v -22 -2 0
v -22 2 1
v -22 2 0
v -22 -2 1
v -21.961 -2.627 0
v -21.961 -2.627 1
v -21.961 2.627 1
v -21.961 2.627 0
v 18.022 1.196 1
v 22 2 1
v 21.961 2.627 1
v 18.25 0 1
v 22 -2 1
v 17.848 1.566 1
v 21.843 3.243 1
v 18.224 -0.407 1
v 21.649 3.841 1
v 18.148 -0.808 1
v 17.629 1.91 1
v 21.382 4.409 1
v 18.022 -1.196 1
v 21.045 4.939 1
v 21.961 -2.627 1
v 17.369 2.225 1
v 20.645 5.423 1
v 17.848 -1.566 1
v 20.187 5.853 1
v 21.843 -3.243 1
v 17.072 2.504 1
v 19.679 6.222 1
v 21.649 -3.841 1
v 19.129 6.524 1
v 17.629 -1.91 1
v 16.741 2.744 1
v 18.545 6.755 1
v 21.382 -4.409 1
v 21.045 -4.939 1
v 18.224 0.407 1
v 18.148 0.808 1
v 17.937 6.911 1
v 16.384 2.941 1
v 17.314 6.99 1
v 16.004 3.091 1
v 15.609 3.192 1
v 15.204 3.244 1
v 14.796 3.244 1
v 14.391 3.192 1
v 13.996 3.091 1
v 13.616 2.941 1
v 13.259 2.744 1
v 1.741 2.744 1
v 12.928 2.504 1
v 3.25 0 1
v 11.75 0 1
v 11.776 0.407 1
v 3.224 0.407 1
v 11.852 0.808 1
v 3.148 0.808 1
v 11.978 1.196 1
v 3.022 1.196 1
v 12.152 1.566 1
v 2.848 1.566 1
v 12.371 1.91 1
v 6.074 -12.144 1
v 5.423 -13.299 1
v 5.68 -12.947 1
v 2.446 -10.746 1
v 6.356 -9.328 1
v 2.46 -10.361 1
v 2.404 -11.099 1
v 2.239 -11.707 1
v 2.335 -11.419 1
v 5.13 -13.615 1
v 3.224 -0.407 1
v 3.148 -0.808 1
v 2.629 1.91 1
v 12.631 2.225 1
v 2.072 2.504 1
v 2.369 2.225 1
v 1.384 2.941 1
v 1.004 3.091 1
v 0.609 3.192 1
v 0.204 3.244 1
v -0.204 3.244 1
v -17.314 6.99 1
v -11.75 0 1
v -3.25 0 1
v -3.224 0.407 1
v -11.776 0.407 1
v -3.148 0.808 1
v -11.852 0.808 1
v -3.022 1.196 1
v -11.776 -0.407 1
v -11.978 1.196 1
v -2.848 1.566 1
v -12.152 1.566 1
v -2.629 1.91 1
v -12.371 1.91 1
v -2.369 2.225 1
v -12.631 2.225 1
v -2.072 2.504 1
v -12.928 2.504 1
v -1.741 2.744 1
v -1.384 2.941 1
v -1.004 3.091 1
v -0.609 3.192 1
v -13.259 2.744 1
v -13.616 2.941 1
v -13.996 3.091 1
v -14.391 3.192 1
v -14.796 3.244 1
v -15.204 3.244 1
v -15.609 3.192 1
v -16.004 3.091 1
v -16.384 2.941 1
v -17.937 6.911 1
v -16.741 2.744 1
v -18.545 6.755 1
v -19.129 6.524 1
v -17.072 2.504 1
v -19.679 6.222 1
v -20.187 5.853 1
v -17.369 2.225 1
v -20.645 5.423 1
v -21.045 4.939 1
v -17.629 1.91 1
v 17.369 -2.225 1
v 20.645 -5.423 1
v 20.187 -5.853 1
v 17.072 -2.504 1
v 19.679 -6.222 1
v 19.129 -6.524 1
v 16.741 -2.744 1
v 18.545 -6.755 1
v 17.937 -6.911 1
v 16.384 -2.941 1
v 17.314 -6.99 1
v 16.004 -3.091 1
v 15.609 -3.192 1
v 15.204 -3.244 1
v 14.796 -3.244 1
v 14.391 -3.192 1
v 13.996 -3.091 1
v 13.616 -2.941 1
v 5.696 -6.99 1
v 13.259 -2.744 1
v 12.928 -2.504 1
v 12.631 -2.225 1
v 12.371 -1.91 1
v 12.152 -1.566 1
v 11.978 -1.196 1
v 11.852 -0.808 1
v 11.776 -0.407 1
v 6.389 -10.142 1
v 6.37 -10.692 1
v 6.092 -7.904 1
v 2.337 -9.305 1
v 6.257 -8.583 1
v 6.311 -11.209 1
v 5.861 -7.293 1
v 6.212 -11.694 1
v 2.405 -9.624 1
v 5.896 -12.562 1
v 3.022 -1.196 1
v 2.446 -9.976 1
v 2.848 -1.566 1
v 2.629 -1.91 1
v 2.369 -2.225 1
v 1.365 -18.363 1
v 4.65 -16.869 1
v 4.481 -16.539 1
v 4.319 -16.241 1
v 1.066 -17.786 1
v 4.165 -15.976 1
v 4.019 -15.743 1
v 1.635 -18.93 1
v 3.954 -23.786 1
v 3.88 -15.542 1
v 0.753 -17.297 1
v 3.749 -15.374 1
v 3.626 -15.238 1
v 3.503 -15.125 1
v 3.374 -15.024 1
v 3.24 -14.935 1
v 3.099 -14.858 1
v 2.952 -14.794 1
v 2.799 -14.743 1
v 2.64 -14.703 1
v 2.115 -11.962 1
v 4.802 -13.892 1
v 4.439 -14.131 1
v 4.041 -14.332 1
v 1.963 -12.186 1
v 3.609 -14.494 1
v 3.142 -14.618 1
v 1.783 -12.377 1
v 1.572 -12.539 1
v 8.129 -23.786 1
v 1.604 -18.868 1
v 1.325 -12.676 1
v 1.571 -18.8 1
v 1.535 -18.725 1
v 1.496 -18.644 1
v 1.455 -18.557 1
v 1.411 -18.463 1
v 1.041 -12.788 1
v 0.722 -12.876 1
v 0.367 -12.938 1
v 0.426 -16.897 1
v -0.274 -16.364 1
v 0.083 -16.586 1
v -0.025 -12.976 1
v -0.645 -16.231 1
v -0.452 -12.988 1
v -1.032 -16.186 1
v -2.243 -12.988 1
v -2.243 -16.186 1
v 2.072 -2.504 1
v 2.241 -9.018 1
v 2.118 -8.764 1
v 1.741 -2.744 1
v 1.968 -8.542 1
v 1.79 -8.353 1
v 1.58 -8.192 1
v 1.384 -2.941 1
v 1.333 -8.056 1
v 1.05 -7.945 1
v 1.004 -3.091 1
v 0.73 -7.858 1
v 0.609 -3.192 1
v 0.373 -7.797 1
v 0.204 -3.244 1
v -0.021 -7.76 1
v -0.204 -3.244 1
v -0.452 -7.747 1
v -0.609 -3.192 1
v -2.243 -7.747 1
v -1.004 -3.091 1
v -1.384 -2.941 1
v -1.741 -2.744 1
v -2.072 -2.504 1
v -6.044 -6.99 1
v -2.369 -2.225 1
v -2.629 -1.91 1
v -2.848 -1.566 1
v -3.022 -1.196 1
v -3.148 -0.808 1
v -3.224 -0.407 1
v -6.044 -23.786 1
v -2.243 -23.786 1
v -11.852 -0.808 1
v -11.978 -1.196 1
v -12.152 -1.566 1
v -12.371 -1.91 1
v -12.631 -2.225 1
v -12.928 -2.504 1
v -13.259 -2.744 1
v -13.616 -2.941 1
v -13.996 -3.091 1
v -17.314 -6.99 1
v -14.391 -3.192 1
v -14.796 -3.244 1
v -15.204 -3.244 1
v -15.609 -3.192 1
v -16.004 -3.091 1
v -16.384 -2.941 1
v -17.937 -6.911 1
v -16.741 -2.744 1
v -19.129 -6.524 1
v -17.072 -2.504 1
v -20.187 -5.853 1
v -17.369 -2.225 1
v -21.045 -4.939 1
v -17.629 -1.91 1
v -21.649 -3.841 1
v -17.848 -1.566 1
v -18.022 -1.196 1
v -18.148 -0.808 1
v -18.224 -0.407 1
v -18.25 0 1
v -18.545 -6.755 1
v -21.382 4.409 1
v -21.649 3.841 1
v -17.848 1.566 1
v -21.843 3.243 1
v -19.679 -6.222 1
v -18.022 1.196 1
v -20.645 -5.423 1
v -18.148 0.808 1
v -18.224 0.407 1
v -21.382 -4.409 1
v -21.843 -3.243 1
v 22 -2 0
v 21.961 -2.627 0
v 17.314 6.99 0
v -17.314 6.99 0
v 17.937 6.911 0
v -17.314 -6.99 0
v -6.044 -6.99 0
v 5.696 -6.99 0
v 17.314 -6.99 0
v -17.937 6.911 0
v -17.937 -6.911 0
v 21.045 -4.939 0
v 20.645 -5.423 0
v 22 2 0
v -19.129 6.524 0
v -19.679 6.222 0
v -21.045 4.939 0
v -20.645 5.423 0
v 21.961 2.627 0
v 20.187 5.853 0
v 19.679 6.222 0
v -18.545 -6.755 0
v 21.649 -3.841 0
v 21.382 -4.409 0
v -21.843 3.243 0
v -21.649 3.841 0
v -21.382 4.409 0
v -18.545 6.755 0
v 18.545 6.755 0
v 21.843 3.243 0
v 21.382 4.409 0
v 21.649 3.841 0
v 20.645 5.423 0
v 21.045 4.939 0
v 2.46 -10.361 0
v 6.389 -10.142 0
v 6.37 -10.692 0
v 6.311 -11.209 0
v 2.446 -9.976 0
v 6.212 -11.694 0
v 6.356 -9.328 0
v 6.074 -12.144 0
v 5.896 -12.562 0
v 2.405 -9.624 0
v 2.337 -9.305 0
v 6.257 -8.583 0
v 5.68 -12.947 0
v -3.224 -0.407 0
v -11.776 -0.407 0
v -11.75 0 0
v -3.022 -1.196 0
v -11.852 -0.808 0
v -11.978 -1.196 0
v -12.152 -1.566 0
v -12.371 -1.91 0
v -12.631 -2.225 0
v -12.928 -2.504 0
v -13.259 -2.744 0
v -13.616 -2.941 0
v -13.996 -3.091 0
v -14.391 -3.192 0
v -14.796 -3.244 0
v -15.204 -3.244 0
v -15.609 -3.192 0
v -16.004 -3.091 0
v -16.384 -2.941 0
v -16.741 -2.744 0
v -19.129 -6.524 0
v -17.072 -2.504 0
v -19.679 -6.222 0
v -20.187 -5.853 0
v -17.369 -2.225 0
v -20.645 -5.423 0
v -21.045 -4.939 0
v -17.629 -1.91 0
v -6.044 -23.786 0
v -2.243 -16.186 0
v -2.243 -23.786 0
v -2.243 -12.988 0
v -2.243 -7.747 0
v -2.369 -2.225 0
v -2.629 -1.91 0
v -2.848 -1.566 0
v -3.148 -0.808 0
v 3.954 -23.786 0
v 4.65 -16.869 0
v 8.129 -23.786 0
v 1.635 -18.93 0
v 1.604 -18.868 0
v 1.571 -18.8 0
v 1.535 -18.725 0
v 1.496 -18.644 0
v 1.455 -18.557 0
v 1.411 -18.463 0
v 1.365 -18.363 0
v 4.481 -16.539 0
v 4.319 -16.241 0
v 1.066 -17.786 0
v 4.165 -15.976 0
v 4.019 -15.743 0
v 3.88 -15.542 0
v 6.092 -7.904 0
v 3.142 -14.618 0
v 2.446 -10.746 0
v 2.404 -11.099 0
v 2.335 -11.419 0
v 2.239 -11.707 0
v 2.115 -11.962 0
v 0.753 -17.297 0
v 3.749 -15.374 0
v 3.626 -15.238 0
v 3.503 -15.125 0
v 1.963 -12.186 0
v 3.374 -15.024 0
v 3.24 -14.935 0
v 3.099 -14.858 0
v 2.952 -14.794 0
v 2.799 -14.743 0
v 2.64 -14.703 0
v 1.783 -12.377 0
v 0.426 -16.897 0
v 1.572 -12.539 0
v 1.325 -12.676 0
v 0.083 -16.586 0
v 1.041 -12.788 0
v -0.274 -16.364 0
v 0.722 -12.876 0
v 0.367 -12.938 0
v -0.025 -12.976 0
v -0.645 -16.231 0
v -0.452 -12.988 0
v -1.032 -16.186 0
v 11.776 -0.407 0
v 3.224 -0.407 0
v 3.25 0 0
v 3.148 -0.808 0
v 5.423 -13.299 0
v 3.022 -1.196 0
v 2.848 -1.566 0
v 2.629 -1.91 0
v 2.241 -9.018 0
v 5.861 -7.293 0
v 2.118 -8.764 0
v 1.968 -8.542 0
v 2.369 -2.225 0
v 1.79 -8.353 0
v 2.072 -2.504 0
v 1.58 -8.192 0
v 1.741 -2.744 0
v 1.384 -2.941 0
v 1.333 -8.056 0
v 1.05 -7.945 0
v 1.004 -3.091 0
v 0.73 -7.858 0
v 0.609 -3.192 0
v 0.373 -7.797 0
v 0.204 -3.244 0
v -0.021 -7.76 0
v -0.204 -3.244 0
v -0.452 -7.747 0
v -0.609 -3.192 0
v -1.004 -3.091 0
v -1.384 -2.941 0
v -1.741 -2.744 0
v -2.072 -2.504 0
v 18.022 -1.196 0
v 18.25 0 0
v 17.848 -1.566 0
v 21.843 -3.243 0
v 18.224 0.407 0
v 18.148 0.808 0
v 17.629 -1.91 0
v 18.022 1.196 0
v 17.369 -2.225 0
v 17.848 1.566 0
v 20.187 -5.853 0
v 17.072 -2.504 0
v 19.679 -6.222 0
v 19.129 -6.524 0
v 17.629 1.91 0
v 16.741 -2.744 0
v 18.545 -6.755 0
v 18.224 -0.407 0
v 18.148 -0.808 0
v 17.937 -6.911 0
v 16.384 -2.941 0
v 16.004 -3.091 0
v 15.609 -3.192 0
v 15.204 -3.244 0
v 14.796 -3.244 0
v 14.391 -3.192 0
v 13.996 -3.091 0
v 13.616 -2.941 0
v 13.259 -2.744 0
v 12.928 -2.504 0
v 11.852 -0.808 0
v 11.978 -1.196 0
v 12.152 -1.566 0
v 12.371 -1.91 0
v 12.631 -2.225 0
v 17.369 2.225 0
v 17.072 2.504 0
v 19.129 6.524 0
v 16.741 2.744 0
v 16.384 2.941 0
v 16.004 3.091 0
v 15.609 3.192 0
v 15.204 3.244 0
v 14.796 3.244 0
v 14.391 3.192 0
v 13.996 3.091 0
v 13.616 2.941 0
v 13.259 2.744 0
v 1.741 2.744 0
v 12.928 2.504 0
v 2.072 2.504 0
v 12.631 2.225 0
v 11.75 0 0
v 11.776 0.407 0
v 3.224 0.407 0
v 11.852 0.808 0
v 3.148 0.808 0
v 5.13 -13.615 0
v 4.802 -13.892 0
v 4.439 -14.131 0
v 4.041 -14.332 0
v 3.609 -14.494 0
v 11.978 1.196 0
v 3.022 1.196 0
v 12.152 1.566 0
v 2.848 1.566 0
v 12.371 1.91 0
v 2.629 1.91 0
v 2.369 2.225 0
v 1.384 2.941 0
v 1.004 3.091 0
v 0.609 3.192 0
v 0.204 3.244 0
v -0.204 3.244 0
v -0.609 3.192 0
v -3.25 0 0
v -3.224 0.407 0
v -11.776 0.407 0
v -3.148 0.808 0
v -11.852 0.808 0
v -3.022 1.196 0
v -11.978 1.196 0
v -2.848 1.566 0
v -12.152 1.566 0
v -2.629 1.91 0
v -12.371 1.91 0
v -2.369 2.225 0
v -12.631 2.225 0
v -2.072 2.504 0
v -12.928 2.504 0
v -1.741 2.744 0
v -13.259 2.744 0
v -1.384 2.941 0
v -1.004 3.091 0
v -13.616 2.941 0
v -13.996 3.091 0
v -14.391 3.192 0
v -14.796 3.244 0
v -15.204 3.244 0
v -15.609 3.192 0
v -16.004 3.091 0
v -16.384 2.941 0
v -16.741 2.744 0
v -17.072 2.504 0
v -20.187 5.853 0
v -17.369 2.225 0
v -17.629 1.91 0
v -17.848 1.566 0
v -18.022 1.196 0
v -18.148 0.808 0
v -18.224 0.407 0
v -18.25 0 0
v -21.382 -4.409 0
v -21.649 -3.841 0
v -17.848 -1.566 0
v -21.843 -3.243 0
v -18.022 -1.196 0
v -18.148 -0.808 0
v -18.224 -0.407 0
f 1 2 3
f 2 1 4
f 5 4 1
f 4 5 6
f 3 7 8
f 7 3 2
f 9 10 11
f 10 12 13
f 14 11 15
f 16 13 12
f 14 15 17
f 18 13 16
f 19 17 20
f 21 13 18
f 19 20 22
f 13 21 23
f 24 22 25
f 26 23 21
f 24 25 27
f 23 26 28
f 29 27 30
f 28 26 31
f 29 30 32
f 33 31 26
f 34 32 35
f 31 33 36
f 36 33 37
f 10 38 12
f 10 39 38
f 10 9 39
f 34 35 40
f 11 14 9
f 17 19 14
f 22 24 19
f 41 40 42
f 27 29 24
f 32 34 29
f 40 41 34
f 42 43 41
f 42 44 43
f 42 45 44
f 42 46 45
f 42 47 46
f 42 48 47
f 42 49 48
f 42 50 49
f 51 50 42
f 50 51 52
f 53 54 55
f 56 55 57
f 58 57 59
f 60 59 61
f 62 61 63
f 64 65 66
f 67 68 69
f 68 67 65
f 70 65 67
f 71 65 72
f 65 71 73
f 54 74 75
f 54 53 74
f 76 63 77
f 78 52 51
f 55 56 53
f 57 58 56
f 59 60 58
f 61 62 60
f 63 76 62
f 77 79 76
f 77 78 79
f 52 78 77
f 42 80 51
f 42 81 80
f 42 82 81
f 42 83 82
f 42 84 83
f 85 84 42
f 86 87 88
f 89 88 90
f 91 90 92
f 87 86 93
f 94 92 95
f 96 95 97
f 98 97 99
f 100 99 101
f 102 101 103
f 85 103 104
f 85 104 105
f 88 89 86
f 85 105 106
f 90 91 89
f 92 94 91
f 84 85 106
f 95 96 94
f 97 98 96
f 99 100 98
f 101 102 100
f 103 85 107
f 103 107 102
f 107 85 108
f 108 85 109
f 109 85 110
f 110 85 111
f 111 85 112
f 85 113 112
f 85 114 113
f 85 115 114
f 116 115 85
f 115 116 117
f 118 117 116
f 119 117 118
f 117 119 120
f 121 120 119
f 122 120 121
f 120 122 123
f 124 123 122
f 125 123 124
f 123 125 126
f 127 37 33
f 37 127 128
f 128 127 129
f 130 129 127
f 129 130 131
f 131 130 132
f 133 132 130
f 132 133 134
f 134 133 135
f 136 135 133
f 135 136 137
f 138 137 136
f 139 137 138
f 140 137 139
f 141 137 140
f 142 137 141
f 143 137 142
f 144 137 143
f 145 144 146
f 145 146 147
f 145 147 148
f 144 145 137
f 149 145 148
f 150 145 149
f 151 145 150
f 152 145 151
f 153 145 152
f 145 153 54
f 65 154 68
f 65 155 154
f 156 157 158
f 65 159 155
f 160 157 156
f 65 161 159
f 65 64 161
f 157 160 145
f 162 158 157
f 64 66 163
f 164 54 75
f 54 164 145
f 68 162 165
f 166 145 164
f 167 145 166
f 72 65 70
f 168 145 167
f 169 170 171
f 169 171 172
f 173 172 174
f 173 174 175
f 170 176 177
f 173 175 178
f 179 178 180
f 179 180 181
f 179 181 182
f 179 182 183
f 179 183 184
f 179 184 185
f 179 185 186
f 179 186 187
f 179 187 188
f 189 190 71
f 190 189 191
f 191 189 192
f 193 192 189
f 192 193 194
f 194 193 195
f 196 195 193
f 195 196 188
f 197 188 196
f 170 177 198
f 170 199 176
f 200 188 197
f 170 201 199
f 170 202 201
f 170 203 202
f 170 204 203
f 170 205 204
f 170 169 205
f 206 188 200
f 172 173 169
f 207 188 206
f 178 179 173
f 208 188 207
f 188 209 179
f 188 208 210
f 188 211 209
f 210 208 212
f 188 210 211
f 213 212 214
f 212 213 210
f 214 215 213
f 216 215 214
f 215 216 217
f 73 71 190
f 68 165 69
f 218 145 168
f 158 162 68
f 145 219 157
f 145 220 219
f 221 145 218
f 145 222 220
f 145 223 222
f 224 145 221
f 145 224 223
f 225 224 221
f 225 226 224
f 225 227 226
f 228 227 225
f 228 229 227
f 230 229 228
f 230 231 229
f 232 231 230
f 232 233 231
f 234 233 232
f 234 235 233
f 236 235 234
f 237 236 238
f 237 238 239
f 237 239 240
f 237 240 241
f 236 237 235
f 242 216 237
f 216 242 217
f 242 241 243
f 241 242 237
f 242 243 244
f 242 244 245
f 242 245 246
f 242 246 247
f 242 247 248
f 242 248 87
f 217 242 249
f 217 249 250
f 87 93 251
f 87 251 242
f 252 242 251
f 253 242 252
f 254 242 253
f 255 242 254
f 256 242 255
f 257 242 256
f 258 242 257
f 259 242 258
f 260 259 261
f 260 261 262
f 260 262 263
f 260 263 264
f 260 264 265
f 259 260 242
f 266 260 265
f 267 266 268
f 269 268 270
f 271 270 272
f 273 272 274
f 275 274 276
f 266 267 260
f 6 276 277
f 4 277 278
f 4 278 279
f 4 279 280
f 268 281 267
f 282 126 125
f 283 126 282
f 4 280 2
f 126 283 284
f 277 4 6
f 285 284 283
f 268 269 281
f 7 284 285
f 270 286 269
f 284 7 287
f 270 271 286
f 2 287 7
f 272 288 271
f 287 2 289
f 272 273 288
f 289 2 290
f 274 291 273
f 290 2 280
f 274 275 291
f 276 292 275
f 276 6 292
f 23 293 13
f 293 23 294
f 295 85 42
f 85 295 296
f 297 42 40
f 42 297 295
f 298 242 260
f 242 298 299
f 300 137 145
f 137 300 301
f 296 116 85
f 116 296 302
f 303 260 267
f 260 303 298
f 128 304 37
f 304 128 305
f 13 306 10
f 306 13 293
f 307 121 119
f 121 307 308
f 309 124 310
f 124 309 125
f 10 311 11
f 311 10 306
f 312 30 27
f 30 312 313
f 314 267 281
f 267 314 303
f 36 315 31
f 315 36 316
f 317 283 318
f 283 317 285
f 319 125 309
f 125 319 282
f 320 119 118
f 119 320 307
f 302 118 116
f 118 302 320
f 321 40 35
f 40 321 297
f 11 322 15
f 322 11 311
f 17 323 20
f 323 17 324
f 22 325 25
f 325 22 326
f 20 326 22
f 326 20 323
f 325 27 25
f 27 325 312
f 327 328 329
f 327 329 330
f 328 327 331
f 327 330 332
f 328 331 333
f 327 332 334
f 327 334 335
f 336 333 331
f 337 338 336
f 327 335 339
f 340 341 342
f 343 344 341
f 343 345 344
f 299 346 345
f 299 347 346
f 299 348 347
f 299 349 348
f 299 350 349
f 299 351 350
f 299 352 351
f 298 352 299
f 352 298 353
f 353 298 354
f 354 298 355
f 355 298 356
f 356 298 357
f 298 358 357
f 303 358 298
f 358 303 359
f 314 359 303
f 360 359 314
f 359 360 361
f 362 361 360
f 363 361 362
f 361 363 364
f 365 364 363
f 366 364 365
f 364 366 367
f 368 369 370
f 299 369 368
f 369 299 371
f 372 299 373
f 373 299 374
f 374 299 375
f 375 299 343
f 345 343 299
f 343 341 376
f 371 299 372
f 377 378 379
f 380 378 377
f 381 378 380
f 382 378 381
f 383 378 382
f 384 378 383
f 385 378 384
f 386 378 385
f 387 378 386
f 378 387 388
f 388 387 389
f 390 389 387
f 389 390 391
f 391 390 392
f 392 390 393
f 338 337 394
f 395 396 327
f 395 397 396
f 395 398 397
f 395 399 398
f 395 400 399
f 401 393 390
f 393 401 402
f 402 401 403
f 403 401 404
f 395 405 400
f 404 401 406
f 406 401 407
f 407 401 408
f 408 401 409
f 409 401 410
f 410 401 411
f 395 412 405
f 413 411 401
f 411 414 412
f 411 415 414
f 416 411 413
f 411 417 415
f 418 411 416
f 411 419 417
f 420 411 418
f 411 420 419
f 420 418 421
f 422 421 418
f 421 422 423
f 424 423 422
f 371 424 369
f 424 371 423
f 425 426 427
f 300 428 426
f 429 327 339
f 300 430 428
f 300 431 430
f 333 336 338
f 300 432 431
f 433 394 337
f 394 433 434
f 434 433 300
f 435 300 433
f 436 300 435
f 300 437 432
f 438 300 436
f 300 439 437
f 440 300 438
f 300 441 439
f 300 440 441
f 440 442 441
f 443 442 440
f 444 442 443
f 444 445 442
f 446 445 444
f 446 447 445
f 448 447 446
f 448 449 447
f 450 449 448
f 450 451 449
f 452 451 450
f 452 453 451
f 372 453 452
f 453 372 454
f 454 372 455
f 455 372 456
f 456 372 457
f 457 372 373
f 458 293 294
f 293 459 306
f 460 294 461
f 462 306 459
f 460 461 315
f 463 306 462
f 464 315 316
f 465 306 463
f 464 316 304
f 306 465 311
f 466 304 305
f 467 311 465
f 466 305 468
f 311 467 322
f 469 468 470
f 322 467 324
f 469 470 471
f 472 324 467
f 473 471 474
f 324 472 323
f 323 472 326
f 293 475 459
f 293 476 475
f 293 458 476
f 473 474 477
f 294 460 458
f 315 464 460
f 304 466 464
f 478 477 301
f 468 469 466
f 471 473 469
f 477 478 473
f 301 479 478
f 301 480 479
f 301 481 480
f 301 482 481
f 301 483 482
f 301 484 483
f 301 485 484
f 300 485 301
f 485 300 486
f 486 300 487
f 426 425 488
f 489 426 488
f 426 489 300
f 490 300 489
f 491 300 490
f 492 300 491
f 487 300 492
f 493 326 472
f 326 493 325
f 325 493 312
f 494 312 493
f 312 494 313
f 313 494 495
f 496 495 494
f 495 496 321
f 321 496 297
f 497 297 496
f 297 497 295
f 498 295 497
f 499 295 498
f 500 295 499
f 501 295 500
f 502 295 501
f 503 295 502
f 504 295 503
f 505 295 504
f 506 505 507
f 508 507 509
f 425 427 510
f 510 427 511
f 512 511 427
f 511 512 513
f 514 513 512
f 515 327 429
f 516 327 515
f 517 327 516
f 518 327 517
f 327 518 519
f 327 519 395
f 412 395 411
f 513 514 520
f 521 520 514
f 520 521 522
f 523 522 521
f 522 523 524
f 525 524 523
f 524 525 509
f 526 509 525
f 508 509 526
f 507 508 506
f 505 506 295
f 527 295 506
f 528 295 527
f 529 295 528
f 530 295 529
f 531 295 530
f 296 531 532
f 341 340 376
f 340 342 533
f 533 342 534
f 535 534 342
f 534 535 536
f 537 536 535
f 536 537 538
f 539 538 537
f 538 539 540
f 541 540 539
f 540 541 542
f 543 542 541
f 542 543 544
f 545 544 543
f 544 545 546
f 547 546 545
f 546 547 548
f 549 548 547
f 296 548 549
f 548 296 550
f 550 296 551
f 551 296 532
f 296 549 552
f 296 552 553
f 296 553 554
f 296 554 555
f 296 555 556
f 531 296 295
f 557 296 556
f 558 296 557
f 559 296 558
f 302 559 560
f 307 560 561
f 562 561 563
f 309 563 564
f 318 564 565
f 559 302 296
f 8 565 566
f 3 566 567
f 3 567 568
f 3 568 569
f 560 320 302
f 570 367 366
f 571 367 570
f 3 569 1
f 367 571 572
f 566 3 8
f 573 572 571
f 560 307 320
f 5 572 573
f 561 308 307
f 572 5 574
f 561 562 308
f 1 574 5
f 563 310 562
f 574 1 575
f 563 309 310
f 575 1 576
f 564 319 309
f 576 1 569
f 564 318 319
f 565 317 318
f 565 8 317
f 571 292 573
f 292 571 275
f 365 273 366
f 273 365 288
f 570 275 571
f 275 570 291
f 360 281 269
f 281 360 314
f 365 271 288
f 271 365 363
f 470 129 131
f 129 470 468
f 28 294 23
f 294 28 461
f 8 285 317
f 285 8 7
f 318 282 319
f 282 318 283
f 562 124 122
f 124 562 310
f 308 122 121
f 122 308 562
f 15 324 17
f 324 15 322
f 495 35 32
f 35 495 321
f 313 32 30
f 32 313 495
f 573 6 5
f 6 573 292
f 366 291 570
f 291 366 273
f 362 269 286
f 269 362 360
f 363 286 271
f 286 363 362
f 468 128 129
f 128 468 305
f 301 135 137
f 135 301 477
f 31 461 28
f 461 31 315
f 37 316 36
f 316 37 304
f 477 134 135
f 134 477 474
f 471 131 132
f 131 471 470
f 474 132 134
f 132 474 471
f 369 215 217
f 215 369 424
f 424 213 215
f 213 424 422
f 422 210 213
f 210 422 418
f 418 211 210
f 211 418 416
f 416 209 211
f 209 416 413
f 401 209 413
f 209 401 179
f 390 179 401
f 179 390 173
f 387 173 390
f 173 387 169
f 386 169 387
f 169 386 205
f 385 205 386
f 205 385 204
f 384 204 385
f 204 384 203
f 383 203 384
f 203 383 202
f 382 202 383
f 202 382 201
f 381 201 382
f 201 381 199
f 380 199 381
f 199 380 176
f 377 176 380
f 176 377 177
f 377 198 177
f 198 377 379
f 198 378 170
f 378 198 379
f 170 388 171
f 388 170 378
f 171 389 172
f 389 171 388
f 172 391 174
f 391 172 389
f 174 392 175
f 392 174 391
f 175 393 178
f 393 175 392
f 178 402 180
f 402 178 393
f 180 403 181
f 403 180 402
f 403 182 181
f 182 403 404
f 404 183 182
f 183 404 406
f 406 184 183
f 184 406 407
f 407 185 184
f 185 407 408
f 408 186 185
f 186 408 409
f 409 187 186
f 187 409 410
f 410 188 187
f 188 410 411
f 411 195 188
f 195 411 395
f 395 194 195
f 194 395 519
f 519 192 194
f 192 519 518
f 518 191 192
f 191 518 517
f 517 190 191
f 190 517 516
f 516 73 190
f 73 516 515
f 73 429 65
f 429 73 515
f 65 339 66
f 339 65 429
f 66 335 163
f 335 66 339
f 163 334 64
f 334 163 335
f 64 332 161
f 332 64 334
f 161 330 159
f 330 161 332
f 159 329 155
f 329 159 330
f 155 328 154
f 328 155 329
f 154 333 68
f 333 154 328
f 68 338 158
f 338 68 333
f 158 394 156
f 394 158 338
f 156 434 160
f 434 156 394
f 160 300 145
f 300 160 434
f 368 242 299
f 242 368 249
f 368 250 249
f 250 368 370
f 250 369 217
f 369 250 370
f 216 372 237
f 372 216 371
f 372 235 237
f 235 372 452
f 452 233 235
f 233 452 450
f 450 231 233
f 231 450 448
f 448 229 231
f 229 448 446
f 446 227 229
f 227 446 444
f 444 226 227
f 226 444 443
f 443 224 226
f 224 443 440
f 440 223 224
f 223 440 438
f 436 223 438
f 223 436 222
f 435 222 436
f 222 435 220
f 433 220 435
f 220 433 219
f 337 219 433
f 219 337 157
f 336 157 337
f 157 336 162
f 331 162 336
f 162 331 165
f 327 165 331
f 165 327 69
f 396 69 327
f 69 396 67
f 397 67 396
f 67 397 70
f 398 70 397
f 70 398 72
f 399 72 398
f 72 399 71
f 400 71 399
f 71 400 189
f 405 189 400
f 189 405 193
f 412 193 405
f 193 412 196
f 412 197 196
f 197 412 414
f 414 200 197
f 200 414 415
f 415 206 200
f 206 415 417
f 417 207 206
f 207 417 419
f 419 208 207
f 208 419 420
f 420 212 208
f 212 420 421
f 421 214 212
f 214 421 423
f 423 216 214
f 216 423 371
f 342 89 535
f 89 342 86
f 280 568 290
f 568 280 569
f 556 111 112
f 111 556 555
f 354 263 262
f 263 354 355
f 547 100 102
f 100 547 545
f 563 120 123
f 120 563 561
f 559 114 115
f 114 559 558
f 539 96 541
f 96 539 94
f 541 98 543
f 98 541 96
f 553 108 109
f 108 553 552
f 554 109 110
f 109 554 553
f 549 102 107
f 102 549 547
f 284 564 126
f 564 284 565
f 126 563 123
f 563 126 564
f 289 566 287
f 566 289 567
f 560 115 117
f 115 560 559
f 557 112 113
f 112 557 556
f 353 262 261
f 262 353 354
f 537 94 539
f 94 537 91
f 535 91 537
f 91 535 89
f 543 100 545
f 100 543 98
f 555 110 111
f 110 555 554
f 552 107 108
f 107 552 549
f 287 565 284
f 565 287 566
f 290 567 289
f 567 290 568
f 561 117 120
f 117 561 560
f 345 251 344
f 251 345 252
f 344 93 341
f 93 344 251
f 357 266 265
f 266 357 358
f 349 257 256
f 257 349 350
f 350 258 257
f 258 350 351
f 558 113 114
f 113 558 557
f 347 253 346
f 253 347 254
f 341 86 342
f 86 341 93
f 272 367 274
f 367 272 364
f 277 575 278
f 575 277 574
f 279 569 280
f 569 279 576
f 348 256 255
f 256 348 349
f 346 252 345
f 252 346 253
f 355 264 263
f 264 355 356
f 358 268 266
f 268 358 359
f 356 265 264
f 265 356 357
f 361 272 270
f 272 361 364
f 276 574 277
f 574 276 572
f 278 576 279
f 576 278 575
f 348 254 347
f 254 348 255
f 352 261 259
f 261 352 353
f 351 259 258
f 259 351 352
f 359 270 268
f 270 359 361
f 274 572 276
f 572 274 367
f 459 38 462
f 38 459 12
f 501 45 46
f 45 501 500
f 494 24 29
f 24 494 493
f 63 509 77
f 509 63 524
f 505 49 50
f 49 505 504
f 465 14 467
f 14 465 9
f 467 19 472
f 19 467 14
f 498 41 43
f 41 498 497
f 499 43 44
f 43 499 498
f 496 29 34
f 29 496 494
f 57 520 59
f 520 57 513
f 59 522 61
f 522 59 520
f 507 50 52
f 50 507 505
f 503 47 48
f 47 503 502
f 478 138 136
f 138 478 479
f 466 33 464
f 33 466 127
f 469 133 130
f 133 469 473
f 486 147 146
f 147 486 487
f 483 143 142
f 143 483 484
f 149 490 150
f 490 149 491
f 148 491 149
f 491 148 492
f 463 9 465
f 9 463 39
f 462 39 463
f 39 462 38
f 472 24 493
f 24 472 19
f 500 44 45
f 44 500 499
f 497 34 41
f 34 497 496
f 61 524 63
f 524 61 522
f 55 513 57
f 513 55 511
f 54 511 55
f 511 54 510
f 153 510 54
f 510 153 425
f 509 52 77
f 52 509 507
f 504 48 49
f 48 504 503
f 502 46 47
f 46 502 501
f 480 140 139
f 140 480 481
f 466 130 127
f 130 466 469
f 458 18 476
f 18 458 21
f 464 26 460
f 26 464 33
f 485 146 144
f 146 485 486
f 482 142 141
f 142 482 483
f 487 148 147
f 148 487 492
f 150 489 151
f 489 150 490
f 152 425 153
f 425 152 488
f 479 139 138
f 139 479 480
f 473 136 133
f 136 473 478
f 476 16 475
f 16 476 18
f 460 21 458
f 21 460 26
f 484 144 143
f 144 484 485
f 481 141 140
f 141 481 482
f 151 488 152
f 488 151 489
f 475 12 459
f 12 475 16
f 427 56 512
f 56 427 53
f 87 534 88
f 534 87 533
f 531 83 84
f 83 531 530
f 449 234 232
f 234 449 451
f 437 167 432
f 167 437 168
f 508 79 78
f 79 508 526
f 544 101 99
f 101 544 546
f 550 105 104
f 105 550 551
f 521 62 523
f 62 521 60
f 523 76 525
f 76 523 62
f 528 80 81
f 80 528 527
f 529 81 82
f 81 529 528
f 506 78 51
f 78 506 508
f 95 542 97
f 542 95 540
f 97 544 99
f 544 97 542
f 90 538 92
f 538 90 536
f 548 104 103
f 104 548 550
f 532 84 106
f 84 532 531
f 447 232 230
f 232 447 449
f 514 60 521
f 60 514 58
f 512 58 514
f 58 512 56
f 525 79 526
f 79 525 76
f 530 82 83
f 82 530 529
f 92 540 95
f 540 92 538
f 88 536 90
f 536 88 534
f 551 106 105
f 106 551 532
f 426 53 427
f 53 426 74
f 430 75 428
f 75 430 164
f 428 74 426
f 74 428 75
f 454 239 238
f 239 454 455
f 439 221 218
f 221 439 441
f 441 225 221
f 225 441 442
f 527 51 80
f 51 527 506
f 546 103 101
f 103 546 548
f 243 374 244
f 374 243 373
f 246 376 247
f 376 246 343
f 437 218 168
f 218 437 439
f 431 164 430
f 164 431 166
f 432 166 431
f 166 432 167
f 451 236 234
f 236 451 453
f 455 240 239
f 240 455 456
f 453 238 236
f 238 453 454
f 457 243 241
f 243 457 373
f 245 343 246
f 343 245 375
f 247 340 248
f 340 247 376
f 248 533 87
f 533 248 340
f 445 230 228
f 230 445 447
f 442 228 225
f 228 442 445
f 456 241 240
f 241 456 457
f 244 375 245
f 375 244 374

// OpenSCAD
$fn = 50;


difference() {
	union() {
		translate(v = [0, 0, 0]) {
			rotate(a = [0, 0, 0]) {
				hull() {
					translate(v = [-17.0000000000, 2.0000000000, 0]) {
						rotate(a = [0, 0, 0]) {
							translate(v = [0, 0, 0]) {
								rotate(a = [0, 0, 0]) {
									cylinder(h = 1, r = 5);
								}
							}
						}
					}
					translate(v = [17.0000000000, 2.0000000000, 0]) {
						rotate(a = [0, 0, 0]) {
							translate(v = [0, 0, 0]) {
								rotate(a = [0, 0, 0]) {
									cylinder(h = 1, r = 5);
								}
							}
						}
					}
					translate(v = [-17.0000000000, -2.0000000000, 0]) {
						rotate(a = [0, 0, 0]) {
							translate(v = [0, 0, 0]) {
								rotate(a = [0, 0, 0]) {
									cylinder(h = 1, r = 5);
								}
							}
						}
					}
					translate(v = [17.0000000000, -2.0000000000, 0]) {
						rotate(a = [0, 0, 0]) {
							translate(v = [0, 0, 0]) {
								rotate(a = [0, 0, 0]) {
									cylinder(h = 1, r = 5);
								}
							}
						}
					}
				}
			}
		}
		translate(v = [0, -5, 0]) {
			rotate(a = [0, 0, 0]) {
				linear_extrude(height = 1) {
					text(font = "DejaVu Sans Mono:style=Bold", halign = "center", size = 19.0000000000, text = "R", valign = "top");
				}
			}
		}
	}
	union() {
		translate(v = [-15.0000000000, 0.0000000000, -125.0000000000]) {
			rotate(a = [0, 0, 0]) {
				cylinder(h = 250, r = 3.2500000000);
			}
		}
		translate(v = [15.0000000000, 0.0000000000, -125.0000000000]) {
			rotate(a = [0, 0, 0]) {
				cylinder(h = 250, r = 3.2500000000);
			}
		}
		translate(v = [15.0000000000, 0.0000000000, -125.0000000000]) {
			rotate(a = [0, 0, 0]) {
				cylinder(h = 250, r = 3.2500000000);
			}
		}
		translate(v = [0, 0, -125.0000000000]) {
			rotate(a = [0, 0, 0]) {
				cylinder(h = 250, r = 3.2500000000);
			}
		}
	}
}
